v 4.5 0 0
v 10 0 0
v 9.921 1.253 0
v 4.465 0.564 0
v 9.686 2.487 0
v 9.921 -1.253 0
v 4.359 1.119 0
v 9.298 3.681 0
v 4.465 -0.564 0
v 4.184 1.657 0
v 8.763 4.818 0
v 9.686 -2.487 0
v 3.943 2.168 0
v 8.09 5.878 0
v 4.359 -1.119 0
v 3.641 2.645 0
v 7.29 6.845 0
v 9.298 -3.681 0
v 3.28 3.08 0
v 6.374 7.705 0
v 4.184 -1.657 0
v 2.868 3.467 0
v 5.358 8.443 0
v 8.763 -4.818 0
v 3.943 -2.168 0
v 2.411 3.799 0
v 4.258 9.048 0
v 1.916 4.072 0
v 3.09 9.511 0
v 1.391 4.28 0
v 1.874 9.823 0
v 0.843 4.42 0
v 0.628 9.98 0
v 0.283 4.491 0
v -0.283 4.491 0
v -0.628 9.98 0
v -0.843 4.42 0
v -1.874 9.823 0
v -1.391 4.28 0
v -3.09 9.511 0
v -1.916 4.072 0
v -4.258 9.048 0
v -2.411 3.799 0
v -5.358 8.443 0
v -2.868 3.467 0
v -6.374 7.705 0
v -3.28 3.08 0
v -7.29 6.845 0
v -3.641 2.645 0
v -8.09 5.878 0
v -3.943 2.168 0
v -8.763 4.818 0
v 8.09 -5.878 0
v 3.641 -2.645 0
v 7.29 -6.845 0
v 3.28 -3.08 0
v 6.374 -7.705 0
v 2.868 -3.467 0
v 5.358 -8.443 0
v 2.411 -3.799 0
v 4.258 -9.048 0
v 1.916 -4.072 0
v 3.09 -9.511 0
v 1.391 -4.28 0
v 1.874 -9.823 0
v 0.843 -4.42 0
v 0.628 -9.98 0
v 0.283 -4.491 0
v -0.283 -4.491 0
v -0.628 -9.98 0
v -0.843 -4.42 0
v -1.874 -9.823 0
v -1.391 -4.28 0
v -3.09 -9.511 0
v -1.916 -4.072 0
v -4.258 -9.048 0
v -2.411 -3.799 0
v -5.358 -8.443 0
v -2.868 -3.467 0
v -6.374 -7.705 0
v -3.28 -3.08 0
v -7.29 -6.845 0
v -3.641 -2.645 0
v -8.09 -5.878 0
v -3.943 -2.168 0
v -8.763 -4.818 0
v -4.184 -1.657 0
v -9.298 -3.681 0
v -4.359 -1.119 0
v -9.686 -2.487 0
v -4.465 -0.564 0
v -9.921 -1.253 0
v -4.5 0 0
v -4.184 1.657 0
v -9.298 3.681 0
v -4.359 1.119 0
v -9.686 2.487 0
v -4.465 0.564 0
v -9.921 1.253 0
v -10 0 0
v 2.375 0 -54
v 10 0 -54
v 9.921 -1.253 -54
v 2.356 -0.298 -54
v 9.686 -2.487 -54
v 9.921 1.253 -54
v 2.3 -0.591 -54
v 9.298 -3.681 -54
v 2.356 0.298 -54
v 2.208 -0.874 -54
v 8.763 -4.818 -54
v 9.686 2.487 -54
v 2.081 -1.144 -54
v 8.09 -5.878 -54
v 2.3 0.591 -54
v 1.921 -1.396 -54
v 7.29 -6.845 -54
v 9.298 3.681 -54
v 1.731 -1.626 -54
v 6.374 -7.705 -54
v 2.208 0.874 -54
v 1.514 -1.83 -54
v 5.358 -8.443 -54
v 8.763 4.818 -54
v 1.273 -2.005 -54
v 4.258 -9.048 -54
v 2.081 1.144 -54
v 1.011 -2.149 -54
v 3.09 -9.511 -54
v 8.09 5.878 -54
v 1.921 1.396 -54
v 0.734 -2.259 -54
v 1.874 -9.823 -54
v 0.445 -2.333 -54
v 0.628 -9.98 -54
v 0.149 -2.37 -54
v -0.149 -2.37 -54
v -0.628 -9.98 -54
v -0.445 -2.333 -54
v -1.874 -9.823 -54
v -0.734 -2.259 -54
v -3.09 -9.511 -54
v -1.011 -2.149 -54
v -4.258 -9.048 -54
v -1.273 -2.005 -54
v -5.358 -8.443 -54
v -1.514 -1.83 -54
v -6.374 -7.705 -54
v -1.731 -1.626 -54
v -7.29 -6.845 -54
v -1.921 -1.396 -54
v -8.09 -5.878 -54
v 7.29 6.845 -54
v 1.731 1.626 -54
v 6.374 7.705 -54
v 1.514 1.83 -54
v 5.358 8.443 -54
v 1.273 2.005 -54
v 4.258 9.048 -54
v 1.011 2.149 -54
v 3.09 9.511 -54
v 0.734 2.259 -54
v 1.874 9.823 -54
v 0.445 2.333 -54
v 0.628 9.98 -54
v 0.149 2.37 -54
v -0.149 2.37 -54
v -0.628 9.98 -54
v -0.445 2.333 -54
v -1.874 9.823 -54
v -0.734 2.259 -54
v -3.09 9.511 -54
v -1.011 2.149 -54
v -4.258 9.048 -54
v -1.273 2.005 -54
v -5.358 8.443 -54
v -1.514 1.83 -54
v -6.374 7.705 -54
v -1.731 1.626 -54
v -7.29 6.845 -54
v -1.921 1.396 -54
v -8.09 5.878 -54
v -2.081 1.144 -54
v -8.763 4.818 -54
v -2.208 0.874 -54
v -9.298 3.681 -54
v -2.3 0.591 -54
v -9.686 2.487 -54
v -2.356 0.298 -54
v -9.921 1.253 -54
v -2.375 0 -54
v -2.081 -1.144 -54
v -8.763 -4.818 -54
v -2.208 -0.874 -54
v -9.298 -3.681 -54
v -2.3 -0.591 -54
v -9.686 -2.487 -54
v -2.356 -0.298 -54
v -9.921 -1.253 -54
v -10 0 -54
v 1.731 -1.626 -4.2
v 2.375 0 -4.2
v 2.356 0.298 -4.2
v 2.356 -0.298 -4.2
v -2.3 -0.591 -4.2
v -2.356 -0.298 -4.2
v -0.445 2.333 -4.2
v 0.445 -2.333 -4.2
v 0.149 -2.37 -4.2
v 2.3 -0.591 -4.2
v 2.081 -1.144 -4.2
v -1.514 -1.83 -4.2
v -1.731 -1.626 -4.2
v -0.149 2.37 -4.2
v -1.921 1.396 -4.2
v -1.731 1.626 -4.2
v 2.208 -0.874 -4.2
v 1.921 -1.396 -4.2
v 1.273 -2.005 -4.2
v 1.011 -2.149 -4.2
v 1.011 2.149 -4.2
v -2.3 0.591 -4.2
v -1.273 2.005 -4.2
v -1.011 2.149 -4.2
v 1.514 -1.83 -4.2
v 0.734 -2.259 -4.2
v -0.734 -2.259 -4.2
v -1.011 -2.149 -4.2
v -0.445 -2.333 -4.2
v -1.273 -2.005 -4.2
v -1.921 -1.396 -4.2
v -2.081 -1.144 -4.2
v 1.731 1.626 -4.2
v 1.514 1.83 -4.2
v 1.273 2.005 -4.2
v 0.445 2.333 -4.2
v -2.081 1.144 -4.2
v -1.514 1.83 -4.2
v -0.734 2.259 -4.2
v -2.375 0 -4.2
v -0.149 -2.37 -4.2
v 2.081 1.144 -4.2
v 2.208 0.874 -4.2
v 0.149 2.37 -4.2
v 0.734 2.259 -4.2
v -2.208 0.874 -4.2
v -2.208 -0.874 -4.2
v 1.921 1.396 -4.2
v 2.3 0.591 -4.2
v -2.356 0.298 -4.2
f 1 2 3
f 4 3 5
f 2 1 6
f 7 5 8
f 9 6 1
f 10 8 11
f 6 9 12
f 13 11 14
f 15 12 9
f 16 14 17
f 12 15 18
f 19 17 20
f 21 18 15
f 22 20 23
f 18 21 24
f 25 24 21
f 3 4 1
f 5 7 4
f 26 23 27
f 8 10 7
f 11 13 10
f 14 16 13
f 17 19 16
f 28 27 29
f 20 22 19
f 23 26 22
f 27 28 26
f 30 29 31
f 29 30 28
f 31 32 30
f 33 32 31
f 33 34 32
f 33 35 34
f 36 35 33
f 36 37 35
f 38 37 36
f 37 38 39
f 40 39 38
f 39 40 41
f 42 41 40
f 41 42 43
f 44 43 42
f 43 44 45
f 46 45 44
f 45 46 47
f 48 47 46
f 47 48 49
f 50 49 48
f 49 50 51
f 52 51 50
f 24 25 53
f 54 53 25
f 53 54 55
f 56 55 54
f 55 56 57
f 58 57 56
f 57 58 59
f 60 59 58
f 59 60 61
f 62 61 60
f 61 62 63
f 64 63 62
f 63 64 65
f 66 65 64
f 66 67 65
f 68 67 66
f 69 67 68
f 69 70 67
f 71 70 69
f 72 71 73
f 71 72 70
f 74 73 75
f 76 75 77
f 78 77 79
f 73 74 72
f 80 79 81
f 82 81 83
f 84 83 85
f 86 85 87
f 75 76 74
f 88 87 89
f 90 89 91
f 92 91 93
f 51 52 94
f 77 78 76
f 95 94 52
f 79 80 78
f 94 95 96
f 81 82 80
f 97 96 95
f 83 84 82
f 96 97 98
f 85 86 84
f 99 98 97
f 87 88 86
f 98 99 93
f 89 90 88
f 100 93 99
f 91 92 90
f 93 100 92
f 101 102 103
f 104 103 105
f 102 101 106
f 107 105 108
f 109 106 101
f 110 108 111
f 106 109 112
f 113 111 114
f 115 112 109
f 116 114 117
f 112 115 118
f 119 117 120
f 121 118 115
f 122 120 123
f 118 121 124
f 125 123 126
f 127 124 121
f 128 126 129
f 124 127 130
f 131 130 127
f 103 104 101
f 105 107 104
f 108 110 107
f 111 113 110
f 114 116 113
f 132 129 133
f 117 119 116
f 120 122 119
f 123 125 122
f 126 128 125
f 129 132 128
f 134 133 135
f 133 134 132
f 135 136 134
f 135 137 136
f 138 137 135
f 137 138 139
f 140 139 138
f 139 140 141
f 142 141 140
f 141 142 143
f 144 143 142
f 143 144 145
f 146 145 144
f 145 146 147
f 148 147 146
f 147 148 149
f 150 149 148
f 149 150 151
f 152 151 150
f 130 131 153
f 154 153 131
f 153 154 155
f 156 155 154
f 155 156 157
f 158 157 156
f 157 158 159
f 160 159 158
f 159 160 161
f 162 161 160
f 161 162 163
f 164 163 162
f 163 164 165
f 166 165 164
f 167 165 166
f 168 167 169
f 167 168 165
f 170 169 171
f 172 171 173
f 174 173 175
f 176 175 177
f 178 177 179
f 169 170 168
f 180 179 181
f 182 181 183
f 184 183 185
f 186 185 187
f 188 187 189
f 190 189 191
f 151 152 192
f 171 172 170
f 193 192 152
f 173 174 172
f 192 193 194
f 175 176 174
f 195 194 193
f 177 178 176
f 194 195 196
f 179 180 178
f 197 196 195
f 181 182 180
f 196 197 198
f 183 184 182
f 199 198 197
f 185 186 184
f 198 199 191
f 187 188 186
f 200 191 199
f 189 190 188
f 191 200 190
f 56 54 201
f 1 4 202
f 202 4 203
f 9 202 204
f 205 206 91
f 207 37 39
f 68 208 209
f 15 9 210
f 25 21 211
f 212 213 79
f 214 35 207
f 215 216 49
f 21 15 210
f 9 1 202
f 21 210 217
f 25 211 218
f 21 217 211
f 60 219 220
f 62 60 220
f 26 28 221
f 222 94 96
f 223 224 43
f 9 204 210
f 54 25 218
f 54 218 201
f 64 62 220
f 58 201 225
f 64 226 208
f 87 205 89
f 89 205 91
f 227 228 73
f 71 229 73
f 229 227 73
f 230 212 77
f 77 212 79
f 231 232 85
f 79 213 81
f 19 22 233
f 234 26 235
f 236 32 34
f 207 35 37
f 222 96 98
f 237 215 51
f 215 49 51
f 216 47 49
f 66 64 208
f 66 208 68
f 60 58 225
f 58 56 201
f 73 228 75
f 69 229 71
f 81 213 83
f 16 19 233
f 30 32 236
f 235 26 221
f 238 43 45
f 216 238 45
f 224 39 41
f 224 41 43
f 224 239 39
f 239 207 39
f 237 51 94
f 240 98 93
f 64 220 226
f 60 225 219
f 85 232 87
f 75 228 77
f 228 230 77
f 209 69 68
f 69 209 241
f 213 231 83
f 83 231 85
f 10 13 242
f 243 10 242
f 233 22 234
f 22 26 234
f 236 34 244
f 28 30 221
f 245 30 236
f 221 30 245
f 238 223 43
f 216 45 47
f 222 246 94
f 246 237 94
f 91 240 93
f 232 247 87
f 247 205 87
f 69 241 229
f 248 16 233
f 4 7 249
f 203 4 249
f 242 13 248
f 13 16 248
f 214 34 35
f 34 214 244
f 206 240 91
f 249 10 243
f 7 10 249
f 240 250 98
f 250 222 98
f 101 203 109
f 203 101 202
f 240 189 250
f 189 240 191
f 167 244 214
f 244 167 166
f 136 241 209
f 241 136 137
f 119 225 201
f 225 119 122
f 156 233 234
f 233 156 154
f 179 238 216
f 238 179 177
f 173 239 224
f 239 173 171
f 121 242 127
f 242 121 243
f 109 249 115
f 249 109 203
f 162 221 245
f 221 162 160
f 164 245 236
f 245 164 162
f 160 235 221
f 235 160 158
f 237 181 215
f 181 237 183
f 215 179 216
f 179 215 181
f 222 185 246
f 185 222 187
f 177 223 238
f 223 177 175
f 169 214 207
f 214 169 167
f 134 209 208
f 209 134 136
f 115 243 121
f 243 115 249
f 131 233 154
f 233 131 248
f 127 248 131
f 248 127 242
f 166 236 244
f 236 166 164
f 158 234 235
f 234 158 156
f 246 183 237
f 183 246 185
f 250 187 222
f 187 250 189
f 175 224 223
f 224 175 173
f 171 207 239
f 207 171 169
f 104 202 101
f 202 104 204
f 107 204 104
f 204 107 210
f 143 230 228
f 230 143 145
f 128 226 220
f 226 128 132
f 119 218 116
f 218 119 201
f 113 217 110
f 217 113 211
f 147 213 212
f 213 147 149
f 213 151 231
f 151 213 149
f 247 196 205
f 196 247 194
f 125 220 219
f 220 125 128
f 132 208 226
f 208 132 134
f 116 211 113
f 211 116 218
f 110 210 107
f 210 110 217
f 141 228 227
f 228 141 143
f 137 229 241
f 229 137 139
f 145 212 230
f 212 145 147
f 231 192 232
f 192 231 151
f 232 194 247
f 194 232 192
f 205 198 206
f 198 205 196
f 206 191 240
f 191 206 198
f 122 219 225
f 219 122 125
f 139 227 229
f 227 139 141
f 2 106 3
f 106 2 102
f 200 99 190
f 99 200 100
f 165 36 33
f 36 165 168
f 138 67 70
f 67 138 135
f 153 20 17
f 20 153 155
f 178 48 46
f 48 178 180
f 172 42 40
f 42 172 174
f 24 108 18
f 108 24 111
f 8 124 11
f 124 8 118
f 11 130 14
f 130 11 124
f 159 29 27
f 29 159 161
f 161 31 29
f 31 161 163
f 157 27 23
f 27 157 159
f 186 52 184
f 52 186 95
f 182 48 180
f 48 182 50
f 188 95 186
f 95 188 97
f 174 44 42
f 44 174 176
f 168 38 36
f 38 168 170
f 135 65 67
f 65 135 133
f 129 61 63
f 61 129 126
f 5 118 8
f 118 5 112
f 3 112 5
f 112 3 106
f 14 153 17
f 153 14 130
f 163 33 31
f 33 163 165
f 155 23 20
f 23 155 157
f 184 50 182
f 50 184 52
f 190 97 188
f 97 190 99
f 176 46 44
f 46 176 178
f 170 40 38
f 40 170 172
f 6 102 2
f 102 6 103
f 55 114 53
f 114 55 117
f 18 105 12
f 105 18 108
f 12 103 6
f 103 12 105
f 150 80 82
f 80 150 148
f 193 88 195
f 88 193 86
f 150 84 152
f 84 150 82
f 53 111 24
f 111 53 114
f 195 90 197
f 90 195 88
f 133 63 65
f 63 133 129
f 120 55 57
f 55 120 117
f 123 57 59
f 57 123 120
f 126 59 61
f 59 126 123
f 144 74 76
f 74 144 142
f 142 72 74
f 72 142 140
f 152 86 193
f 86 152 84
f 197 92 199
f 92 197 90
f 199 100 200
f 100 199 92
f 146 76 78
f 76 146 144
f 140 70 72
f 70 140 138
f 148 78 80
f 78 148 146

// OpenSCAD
$fn = 50;


difference() {
	union() {
		translate(v = [0, 0, -54.0000000000]) {
			cylinder(h = 54, r = 10.0000000000);
		}
		cylinder(h = 0, r = 20.0000000000);
	}
	union() {
		translate(v = [0, 0, 0]) {
			rotate(a = [0, 0, 0]) {
				difference() {
					union() {
						#translate(v = [0, 0, -54.0000000000]) {
							cylinder(h = 54, r = 2.2500000000);
						}
						#translate(v = [0, 0, -4.2000000000]) {
							cylinder(h = 4.2000000000, r = 10.0000000000, r1 = 2.3750000000, r2 = 4.5000000000);
						}
						#translate(v = [0, 0, -54.0000000000]) {
							cylinder(h = 54, r = 2.3750000000);
						}
						#translate(v = [0, 0, -54.0000000000]) {
							cylinder(h = 54, r = 2.2500000000);
						}
					}
					union();
				}
			}
		}
	}
}
